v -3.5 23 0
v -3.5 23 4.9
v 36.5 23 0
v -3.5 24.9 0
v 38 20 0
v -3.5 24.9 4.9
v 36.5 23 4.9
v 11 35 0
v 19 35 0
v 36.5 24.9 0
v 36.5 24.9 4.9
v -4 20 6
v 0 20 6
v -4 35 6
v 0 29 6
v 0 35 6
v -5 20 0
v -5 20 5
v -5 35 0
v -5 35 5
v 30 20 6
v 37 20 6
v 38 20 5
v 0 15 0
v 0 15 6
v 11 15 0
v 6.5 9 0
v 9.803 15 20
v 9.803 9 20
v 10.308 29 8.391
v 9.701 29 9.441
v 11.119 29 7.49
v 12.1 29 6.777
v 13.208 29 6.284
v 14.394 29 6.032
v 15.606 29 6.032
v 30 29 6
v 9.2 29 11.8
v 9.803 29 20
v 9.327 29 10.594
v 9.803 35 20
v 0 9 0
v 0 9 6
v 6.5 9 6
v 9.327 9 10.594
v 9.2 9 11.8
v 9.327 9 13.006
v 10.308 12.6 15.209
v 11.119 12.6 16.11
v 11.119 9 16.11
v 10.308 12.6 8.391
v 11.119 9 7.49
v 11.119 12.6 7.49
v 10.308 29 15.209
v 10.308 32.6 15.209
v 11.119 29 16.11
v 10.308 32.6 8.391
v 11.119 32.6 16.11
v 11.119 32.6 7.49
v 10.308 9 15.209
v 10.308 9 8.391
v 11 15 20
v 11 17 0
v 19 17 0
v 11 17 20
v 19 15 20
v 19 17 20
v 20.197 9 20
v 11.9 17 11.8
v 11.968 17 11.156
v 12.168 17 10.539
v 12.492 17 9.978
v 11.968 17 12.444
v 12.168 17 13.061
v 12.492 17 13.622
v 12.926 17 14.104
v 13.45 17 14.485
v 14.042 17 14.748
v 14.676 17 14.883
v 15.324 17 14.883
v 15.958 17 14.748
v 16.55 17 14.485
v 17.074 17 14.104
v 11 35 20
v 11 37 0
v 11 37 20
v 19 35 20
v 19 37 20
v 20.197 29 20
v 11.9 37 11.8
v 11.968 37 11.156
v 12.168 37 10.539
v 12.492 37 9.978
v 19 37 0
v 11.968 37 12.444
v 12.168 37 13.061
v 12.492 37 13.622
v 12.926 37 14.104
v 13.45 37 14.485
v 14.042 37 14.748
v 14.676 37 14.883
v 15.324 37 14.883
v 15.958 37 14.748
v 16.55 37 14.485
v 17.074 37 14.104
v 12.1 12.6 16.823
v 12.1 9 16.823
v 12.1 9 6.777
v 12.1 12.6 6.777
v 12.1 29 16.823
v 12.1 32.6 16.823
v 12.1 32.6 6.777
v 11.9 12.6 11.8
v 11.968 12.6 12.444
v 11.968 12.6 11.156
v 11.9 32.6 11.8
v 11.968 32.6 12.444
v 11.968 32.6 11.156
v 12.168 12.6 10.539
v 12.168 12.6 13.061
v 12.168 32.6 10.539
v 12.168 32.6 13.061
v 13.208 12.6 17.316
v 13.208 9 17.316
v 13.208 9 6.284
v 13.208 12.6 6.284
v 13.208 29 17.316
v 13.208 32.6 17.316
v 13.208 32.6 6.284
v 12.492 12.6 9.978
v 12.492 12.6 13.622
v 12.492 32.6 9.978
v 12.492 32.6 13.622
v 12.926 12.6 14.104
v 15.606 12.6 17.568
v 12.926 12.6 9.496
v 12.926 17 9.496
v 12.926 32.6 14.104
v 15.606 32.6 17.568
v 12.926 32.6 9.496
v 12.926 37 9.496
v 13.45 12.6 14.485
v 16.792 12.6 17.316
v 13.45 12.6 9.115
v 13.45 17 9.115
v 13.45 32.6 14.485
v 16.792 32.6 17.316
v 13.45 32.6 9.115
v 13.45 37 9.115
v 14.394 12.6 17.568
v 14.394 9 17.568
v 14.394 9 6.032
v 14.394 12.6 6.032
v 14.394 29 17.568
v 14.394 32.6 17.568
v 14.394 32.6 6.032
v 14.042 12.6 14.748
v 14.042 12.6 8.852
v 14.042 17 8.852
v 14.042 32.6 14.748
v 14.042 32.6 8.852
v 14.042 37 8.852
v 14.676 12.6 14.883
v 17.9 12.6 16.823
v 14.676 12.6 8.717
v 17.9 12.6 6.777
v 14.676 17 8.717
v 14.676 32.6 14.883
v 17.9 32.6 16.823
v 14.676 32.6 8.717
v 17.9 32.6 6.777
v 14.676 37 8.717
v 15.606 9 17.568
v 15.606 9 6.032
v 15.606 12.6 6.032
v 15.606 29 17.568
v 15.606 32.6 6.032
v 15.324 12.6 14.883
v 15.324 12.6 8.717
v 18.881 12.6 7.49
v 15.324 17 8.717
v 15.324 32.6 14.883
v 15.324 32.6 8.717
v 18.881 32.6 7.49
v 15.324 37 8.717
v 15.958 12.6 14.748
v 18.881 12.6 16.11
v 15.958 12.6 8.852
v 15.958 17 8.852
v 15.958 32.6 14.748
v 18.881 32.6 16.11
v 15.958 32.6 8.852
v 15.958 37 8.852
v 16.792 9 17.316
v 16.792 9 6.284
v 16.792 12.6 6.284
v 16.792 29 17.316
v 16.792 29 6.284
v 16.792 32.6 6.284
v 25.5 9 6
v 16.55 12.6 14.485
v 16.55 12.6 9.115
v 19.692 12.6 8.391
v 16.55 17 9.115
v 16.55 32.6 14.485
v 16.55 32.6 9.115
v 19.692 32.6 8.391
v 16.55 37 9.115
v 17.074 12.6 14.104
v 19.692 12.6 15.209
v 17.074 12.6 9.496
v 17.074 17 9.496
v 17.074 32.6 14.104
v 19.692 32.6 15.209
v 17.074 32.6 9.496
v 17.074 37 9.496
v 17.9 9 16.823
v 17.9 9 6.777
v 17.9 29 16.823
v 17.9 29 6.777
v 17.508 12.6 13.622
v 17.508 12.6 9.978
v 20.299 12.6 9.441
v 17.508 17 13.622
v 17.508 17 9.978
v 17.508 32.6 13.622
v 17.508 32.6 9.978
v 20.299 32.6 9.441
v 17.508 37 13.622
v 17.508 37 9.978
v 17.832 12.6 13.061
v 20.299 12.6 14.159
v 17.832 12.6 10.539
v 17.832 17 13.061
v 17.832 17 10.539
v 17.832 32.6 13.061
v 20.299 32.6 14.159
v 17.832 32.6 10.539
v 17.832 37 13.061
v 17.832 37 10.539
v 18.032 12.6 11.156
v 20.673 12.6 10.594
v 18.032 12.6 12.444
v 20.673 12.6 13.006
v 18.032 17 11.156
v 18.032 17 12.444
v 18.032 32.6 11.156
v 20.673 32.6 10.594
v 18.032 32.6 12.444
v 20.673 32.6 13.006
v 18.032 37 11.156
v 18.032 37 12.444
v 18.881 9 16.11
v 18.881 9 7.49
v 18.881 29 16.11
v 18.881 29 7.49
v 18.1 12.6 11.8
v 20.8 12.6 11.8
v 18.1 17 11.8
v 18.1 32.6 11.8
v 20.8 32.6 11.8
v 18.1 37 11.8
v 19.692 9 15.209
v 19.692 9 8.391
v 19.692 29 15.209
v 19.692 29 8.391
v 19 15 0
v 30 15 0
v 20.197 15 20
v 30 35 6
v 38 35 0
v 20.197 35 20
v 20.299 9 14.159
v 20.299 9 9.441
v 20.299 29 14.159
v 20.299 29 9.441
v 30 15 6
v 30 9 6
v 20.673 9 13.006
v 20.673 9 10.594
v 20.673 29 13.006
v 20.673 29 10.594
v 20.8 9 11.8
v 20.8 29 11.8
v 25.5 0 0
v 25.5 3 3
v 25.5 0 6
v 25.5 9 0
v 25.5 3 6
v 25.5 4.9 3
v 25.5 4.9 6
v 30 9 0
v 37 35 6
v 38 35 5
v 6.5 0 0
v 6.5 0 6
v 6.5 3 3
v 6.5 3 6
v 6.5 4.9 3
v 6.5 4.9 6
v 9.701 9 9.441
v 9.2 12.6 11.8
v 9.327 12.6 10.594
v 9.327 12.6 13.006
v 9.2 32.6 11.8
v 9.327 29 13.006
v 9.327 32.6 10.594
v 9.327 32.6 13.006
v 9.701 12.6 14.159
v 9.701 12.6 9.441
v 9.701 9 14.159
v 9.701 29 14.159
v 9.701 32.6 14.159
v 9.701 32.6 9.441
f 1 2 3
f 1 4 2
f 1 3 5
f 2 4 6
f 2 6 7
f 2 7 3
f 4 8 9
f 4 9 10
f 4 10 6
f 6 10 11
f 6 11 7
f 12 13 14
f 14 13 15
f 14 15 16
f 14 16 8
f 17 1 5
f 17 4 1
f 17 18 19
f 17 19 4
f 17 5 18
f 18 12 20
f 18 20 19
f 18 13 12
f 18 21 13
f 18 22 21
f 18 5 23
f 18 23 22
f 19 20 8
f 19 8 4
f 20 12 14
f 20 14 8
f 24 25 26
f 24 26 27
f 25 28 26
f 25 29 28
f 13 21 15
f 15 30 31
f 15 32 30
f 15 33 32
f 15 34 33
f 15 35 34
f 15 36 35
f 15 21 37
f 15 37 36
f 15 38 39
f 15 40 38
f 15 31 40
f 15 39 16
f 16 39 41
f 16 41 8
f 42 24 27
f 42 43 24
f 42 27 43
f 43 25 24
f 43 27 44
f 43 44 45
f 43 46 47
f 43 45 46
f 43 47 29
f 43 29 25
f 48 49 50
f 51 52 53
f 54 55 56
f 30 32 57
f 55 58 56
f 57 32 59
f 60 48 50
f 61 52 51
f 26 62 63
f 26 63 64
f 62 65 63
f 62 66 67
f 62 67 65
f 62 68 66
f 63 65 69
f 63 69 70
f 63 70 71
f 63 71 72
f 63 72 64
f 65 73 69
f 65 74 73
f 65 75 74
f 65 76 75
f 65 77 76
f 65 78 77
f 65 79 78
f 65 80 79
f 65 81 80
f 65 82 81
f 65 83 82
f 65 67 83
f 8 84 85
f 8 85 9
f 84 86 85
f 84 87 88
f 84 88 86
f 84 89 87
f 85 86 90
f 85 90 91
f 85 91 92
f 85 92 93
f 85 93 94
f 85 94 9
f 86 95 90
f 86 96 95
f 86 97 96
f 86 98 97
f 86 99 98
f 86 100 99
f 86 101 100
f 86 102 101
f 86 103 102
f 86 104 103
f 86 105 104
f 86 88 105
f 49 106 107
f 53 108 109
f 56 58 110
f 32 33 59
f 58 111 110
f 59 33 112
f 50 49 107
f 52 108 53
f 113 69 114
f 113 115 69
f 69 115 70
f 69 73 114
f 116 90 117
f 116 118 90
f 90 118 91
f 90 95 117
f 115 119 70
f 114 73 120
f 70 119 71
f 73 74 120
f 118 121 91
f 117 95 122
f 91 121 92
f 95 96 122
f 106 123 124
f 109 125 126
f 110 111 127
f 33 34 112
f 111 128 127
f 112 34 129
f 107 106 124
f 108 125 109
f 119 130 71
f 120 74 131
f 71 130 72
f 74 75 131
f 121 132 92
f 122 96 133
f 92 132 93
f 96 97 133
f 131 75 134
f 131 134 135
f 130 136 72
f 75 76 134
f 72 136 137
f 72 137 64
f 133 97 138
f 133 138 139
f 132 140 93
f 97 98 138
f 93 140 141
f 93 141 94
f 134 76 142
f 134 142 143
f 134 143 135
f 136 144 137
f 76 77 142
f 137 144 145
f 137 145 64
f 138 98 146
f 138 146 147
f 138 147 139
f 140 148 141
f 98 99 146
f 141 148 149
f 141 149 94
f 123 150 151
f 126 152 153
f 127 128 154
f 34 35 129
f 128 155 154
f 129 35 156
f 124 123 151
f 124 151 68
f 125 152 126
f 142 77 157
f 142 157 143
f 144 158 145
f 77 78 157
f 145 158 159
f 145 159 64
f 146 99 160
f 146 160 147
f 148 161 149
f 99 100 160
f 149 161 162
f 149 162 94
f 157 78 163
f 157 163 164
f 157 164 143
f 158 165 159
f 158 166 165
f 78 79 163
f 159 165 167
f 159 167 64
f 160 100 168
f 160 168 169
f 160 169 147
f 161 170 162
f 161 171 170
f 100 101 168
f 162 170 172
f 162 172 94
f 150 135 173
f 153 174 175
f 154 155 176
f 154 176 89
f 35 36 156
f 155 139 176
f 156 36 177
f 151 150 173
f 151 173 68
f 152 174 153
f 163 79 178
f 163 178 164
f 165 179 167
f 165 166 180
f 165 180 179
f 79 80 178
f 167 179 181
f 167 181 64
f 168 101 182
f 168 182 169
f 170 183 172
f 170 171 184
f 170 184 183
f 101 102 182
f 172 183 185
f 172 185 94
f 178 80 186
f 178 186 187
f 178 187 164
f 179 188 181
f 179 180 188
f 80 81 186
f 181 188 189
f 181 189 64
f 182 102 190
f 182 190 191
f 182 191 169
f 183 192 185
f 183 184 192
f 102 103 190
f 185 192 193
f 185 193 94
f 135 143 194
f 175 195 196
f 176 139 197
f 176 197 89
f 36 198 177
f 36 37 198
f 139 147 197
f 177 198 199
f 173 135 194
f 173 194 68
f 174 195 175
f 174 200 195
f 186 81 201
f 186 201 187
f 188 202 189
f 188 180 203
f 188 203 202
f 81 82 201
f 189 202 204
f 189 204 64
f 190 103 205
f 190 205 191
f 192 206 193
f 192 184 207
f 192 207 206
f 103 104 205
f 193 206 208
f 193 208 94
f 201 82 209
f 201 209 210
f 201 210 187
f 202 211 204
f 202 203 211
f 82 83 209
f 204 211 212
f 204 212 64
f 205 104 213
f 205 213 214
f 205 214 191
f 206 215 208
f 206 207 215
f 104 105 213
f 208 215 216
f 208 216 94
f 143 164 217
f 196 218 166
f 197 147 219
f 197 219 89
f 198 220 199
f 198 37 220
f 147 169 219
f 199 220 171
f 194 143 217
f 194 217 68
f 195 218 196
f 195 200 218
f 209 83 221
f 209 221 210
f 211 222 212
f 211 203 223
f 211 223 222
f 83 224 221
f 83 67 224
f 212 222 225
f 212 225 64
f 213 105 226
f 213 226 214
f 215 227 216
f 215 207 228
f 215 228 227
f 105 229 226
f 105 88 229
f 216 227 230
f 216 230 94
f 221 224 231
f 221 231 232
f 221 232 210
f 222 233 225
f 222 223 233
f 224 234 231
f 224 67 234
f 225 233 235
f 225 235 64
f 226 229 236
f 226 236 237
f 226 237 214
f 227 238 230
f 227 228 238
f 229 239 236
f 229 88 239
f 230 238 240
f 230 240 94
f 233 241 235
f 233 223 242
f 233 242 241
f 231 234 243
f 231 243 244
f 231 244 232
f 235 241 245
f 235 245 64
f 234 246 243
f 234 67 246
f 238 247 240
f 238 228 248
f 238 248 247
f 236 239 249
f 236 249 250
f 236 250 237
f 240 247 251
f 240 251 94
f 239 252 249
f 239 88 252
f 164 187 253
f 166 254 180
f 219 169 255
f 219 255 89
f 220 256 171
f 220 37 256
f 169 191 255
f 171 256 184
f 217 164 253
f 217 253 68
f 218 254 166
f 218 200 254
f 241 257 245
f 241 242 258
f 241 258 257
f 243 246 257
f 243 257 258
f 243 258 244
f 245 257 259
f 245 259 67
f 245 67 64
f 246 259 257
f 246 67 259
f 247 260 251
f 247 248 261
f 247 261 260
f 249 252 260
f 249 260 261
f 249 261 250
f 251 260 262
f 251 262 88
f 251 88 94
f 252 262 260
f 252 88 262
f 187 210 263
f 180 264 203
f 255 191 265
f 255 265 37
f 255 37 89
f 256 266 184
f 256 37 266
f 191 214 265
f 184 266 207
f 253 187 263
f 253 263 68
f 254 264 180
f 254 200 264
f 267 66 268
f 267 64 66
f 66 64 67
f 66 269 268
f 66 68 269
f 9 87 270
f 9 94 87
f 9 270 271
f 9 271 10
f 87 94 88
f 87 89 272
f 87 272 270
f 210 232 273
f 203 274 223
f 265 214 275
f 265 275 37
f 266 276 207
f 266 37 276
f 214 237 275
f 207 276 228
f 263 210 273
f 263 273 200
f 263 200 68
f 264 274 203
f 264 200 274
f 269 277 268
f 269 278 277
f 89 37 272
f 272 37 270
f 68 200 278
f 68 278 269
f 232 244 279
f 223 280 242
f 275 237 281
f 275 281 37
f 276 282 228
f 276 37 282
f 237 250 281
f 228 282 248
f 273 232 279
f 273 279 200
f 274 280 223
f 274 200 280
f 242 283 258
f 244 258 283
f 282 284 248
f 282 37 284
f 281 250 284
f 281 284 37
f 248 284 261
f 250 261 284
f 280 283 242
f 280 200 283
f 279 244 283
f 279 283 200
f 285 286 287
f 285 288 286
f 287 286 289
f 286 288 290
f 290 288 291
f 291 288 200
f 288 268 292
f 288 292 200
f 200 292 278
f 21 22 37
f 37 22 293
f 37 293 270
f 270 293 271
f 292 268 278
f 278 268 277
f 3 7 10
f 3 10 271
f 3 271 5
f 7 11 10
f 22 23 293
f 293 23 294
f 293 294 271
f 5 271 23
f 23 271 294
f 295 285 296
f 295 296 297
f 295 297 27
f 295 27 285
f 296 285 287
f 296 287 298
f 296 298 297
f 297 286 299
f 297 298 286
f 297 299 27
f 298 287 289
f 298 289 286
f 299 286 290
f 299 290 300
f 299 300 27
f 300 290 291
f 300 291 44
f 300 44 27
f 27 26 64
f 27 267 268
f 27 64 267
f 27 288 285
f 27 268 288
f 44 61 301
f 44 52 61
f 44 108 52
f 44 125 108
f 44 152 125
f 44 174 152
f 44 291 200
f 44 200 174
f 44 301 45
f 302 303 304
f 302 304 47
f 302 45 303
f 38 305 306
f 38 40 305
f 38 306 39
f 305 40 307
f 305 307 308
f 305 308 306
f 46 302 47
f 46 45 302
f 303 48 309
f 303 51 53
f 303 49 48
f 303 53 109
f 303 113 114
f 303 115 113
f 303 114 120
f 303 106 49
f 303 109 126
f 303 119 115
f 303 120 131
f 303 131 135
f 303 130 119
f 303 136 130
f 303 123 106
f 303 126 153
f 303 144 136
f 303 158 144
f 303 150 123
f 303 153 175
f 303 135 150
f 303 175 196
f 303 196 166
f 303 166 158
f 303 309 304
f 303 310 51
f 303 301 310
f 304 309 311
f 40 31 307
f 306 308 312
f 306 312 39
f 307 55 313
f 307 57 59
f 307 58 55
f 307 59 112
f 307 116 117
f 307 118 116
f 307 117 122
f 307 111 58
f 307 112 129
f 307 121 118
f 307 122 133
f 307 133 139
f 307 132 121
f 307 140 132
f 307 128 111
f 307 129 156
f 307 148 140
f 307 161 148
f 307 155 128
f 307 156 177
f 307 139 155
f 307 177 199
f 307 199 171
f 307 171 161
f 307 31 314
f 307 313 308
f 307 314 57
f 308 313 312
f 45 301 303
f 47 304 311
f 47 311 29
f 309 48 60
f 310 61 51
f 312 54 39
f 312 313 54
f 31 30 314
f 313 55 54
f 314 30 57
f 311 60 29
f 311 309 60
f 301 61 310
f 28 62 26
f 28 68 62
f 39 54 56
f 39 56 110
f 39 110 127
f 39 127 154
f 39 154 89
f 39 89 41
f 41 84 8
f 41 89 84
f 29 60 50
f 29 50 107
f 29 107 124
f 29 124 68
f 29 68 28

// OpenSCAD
// file: ../../configuration.scad
// Vyska vrstvy pro tisknuti dilu [mm]
layer_height = 0.25; //Slic3r->Print Settings->Layers and perimeters->Layer height

// Rezerva prumeru hlavy sroubu [mm]
spare = 1;
// Prumer hlavy M6 sroubu (pricte se rezerva) [mm]
M6_head_diameter = 10.6+spare;
//M6_head_diameter = 12+spare;

// Vyska hlavy M6 sroubu (dulezite pro zapusteni hlavy sroubu do plastu) [mm]
M6_head_height = 3.6;
//M6_head_height = 4.5;

//Prumery sroubu a tyci
M8_smooth_rod_diameter = 8.1;
M8_smooth_rod_diameter_catch = 8.2;
M6_diameter = 6.2;
M6_diamater_horizontal = 6.5;
M3_diameter = 3.2;
M3_diameter_horizontal = 3.2;

//Prumery matic
M3_nut_diameter = 6.8;
M3_nut_diameter_horizontal = 6.8;

//ALU profile parameters
ALU_cut_width = 7.9;
ALU_cut_width_horizontal = 7.9;

// Delka motoru (ovlivni dily pro osy Z a Y)
//SX17-1003LQFE (doporuceno hlavne na osu Z)
//motor_length = 29.5;
//SX17-1003 (doporuceno hlavne na osu Z)
motor_length = 34;
//SX17-1005
//motor_length = 40;
//SX17-0905 - zde je jiz problem s velkou vyskou motoru na ose Z - musi se upravit endstop-holder
//motor_length = 48;

// Sirka vytlacovaneho materialu [mm]
extrusion_width = 0.66; //Slic3r->Print Settings->Advanced->Default extrusion width

/// Vyberte typ remenu ******************************************************

// GT2 
//belt_tooth_distance = 2;
//belt_tooth_ratio = 0.5;

// T2.5
belt_tooth_distance = 2.5;
belt_tooth_ratio = 0.68;
// main file
// RebeliX
//
// RAMPS mini drzak
// GNU GPL v3
// Martin Neruda <neruda@reprap4u.cz>
// http://www.reprap4u.cz

include <../../configuration.scad>

module bottom_holder_base(vyska,sirka,delka){
	// Arduino holder
	translate([15-8.5,0,0]) cube([sirka,delka,vyska]);
	// Profile mount
	translate([0,delka-6,0]) cube([30,6,20]);
	// Guide
	translate([15-4,delka,0]) cube([8,2,20]);
}

module top_holder_base(vyska,sirka,delka){
	// Arduino holder
	translate([-5,0,0]) cube([sirka,delka,vyska]);
	// Profile mount
	translate([0,delka-6,0]) cube([30,6,20]);
	// Guide
	translate([15-4,delka,0]) cube([8,2,20]);
}

module bottom_holder_cuts(vyska,delka,vyrez_sirka){
	translate([-3.5,3,vyska-3]) cube([vyrez_sirka,1.9,5]);
	// M6 screw hole
	translate([15,delka-6+M6_head_height,vyska+M6_head_diameter/2]) rotate([90,0,0]) cylinder(r=M6_head_diameter/2,h=10,$fn=30);
	translate([15,0,vyska+M6_head_diameter/2]) rotate([-90,0,0]) cylinder(r=3.1,h=20,$fn=30);
	// Material saving
	translate([0,0,vyska]) rotate([0,-55,0]) cube([30,30,30]);
	translate([30,0,vyska]) rotate([0,-35,0]) cube([30,30,30]);	
}

module top_holder_cuts(vyska,delka,vyrez_sirka){
	translate([-3.5,3,-0.1]) cube([vyrez_sirka,1.9,5]);
	// M6 screw hole
	translate([15,delka-6+M6_head_height,vyska+M6_head_diameter/2]) rotate([90,0,0]) cylinder(r=M6_head_diameter/2,h=10,$fn=30);
	translate([15,0,vyska+M6_head_diameter/2]) rotate([-90,0,0]) cylinder(r=3.1,h=20,$fn=30);
	// Material saving
	translate([0,0,vyska]) rotate([0,-55,0]) cube([30,30,30]);
	translate([30,0,vyska]) rotate([0,-35,0]) cube([30,30,30]);	
	translate([vyrez_sirka-2,-0.1,vyska-1]) rotate([0,-45,0]) cube([10,20,10]);
	translate([-5,-0.1,vyska-1]) rotate([0,-45,0]) cube([10,20,10]);
}


difference(){
	bottom_holder_base(6,19,15);
	bottom_holder_cuts(6,15,40);
}

translate([0,20,0]) difference(){
	top_holder_base(6,43,15);
	top_holder_cuts(6,15,40);
}	
